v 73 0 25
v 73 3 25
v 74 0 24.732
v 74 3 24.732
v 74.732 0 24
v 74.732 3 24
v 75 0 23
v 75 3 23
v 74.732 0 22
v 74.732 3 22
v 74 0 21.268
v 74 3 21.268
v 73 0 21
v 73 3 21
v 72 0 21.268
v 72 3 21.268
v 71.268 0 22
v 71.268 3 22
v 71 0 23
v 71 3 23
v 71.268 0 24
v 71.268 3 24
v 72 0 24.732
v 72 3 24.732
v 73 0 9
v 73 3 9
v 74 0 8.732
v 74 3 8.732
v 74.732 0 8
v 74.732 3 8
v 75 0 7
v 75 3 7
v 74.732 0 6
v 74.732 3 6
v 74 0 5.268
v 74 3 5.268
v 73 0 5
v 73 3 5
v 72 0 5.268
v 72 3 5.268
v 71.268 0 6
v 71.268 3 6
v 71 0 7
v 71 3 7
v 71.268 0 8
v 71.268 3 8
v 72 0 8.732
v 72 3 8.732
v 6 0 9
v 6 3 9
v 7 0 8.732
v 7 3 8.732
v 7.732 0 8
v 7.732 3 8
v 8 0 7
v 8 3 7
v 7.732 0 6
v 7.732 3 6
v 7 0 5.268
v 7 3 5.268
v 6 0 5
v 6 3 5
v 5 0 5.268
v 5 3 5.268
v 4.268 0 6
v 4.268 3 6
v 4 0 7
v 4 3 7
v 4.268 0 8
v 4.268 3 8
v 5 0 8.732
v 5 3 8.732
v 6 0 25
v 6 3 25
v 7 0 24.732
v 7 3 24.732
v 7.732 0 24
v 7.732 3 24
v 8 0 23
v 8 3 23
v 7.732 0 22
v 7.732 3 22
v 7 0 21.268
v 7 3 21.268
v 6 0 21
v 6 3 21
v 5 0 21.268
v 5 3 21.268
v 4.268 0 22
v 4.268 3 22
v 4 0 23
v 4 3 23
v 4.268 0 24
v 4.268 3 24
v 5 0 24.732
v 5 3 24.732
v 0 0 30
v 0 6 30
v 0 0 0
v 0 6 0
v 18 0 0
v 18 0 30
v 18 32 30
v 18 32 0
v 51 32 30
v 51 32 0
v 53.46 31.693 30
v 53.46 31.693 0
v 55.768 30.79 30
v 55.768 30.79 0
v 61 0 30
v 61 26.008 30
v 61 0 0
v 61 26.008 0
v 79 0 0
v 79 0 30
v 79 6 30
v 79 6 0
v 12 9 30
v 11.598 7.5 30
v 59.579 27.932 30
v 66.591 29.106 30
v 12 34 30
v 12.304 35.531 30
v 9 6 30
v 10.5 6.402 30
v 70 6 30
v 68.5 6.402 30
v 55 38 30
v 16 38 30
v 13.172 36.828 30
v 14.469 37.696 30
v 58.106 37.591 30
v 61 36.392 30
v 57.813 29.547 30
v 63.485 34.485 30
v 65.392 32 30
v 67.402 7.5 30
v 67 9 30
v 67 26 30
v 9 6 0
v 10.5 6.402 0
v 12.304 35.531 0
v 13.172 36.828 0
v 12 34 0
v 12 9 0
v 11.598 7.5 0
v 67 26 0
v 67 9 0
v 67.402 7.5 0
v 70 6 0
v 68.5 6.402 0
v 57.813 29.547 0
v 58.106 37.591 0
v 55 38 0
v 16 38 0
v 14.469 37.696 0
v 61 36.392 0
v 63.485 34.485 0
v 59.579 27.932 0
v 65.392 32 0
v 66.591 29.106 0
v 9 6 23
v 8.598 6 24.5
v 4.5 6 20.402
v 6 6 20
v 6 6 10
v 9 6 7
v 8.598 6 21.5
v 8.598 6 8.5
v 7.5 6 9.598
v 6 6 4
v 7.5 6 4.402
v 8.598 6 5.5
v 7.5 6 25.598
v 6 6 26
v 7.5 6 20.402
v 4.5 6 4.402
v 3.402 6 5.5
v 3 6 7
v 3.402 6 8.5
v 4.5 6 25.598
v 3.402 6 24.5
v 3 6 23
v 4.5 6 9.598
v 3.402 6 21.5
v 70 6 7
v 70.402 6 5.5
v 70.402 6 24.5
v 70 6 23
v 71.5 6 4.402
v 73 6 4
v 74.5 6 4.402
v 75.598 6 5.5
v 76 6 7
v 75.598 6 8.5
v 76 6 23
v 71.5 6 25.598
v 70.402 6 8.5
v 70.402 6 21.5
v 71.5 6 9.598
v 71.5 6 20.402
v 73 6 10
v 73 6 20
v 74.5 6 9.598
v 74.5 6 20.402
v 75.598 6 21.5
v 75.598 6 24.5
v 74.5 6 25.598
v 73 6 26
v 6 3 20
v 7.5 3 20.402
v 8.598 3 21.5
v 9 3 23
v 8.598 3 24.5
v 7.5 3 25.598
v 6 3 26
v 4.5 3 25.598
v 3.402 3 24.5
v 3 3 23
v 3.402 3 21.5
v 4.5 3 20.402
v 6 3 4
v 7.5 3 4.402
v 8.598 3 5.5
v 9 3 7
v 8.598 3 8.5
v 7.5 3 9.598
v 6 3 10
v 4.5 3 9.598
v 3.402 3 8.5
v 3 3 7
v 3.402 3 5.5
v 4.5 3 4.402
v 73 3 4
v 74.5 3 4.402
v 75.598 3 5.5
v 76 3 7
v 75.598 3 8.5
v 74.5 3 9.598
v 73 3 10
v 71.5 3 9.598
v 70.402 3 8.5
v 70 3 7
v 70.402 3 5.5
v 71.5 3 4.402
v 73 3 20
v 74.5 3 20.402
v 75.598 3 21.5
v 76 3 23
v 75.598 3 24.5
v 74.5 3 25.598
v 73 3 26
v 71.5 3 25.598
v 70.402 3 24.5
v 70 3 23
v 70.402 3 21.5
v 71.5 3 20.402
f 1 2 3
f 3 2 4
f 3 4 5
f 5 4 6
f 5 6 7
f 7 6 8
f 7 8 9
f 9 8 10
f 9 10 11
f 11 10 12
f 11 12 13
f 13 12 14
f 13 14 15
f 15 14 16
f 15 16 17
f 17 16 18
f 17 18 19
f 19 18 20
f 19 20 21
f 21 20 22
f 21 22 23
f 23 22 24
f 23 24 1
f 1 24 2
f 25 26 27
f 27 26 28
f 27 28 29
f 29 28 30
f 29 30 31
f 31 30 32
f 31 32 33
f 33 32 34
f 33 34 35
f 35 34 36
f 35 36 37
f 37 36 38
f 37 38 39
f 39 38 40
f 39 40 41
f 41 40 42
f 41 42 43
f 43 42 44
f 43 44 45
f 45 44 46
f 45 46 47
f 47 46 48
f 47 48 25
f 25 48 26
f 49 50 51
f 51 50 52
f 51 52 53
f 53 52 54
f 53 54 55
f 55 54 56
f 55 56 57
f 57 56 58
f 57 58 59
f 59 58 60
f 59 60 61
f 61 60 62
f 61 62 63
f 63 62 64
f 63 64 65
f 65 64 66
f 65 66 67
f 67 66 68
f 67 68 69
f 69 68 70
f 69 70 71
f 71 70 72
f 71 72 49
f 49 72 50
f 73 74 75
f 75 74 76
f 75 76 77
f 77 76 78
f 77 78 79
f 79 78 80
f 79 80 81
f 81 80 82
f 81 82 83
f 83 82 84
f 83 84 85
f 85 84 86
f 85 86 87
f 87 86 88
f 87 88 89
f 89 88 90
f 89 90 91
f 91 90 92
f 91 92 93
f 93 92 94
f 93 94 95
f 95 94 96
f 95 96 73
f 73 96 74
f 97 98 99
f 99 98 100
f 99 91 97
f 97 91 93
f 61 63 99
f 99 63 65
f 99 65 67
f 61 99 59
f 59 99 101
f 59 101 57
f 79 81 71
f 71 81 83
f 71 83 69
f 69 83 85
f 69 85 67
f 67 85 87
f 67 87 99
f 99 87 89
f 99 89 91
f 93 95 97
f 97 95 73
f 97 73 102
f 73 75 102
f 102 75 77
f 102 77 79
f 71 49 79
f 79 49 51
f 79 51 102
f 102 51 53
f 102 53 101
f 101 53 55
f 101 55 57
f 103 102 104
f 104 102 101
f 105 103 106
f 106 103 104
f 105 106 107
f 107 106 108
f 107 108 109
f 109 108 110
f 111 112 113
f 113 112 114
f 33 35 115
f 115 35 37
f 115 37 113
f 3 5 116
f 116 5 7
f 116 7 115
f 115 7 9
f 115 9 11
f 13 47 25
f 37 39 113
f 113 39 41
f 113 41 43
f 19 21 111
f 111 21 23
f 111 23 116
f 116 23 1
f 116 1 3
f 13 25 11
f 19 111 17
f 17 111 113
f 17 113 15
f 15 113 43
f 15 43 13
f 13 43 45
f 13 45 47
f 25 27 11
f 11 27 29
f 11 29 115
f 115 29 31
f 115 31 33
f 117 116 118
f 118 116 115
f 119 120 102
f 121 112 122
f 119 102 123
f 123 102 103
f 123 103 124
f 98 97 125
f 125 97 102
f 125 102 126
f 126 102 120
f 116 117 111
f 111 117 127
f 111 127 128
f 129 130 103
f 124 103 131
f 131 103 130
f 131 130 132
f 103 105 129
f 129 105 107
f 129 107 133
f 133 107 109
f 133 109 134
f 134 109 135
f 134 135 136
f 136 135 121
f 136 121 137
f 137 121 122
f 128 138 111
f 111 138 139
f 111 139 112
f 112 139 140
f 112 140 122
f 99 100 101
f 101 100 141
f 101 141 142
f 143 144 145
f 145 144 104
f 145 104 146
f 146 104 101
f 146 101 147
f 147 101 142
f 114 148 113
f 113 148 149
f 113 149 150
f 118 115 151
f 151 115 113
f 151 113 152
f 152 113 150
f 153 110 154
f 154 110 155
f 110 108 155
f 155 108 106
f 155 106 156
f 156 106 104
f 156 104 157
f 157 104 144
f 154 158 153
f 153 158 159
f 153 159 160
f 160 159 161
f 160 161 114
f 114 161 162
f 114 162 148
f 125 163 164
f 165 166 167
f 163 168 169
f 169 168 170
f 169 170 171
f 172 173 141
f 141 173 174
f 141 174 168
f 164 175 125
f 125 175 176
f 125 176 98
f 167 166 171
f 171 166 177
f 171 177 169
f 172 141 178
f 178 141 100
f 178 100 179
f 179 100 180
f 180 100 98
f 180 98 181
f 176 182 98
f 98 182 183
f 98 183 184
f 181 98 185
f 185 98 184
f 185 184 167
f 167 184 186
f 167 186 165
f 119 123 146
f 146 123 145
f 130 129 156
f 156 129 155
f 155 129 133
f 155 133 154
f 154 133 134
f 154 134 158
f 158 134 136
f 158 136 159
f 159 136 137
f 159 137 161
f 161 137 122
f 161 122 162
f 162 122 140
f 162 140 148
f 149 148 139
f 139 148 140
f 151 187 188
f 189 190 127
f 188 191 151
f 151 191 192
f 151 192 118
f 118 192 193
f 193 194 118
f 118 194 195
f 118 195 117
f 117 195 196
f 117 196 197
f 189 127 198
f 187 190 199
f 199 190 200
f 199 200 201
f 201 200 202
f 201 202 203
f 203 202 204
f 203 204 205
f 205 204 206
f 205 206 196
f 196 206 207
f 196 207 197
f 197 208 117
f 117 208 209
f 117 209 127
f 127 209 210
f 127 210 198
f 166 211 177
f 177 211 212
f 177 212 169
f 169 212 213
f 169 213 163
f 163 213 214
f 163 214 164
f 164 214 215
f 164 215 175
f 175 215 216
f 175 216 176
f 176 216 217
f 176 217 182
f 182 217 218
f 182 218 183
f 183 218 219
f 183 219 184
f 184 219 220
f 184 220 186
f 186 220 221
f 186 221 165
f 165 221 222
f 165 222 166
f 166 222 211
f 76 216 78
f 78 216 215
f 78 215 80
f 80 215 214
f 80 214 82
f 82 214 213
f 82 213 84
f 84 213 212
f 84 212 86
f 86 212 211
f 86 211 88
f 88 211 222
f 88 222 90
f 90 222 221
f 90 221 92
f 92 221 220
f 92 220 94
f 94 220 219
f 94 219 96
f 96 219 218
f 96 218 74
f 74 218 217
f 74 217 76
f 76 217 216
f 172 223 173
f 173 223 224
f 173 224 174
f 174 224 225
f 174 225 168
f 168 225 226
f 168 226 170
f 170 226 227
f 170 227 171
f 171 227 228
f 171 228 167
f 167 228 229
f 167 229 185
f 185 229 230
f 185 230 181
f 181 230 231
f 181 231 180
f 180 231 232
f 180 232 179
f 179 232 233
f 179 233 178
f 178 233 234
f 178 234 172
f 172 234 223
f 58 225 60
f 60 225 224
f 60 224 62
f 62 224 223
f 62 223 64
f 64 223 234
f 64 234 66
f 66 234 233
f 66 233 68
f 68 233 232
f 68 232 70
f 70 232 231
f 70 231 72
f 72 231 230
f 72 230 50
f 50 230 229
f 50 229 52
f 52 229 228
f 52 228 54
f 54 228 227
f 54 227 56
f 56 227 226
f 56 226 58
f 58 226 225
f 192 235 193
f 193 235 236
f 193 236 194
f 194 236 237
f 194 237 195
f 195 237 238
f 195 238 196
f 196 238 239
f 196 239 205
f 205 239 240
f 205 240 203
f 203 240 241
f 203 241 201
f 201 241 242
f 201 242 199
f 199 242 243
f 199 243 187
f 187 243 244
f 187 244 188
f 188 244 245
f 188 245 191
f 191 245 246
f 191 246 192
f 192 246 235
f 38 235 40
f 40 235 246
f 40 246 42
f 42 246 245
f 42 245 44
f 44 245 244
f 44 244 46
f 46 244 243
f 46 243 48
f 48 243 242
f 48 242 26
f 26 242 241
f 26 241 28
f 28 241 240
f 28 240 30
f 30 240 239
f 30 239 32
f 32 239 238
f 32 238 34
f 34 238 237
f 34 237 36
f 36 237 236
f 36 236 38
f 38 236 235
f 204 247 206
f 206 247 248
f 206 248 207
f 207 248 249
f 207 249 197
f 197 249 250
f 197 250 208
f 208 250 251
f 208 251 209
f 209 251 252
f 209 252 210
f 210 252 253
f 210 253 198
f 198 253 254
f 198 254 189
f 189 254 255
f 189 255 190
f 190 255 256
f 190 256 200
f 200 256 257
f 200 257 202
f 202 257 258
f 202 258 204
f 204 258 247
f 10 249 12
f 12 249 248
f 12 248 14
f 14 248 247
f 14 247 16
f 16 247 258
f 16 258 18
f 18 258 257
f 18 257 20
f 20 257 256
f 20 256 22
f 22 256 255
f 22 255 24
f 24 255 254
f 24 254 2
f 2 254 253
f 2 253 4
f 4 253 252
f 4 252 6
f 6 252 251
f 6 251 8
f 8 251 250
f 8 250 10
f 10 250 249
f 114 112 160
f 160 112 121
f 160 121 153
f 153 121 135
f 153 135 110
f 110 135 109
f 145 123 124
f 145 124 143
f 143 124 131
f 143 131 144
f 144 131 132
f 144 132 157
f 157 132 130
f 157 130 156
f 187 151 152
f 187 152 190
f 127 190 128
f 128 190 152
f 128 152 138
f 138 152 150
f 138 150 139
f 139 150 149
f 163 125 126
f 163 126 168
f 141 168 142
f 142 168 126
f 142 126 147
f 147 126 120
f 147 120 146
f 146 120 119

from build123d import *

# Parameters (mm, degrees)
BOSS_EXTRUDE1_DEPTH     = 30
BOSS_EXTRUDE2_START     = -30
BOSS_EXTRUDE2_DEPTH     = 30
CUT_EXTRUDE1_DEPTH      = 93.655275079
CUT_EXTRUDE1_DEPTH_BACK = 93.655275079
SKETCH2_R               = 2
CUT_EXTRUDE3_START      = -1
SKETCH2_3_R             = 3
CUT_EXTRUDE3_DEPTH      = 10
CUT_EXTRUDE2_DEPTH      = 93.655275079
FILLET1_R               = 4
FILLET2_R               = 3


with BuildPart() as part:
    # Sketch1 → Boss-Extrude1 (new body)
    with BuildSketch(Plane.XY):
        with BuildLine():
            Line((0, 0), (18, 0))
            Line((18, 0), (18, 32))
            Line((18, 32), (51, 32))
            ThreePointArc((51, 32), (58.071067812, 29.071067812), (61, 22))
            Line((61, 22), (61, 0))
            Line((61, 0), (79, 0))
            Line((79, 0), (79, 4))
            Line((79, 4), (65, 4))
            Line((65, 4), (65, 26))
            ThreePointArc((65, 26), (62.071067812, 33.071067812), (55, 36))
            Line((55, 36), (14, 36))
            Line((14, 36), (14, 4))
            Line((14, 4), (0, 4))
            Line((0, 4), (0, 0))
        make_face()
    extrude(amount=BOSS_EXTRUDE1_DEPTH)

    # Sketch4 → Boss-Extrude2 (add)
    with BuildSketch(Plane.XY.offset(30).offset(BOSS_EXTRUDE2_START)):
        with BuildLine():
            Line((79, 6), (67, 6))
            Line((67, 6), (67, 26))
            ThreePointArc((67, 26), (63.485281374, 34.485281374), (55, 38))
            Line((55, 38), (12, 38))
            Line((12, 38), (12, 6))
            Line((12, 6), (0, 6))
            Line((0, 6), (0, 4))
            Line((0, 4), (14, 4))
            Line((14, 4), (14, 36))
            Line((14, 36), (55, 36))
            ThreePointArc((55, 36), (62.071067812, 33.071067812), (65, 26))
            Line((65, 26), (65, 4))
            Line((65, 4), (79, 4))
            Line((79, 4), (79, 6))
        make_face()
    extrude(amount=BOSS_EXTRUDE2_DEPTH)

    # Sketch2 (on Top Plane) → Cut-Extrude1 (cut, two sides: drawn at the far end of the back side and taken through both)
    with BuildSketch(Plane(origin=(0, 0, 0), x_dir=(1, 0, 0), z_dir=(0, 1, 0)).offset(-CUT_EXTRUDE1_DEPTH_BACK)):
        with Locations(Location((6, -7, 0), (0, 0, 270))):
            Circle(SKETCH2_R)
        with Locations(Location((6, -23, 0), (0, 0, 270))):
            Circle(SKETCH2_R)
        with Locations(Location((73, -7, 0), (0, 0, 270))):
            Circle(SKETCH2_R)
        with Locations(Location((73, -23, 0), (0, 0, 270))):
            Circle(SKETCH2_R)
    extrude(amount=CUT_EXTRUDE1_DEPTH + CUT_EXTRUDE1_DEPTH_BACK, mode=Mode.SUBTRACT)

    # Sketch2<3> → Cut-Extrude3 (cut)
    with BuildSketch(Plane(origin=(0, 4, 0), x_dir=(1, 0, 0), z_dir=(0, 1, 0)).offset(CUT_EXTRUDE3_START)):
        with Locations(Location((6, -7, 0), (0, 0, 270))):
            Circle(SKETCH2_3_R)
        with Locations(Location((6, -23, 0), (0, 0, 270))):
            Circle(SKETCH2_3_R)
        with Locations(Location((73, -7, 0), (0, 0, 270))):
            Circle(SKETCH2_3_R)
        with Locations(Location((73, -23, 0), (0, 0, 270))):
            Circle(SKETCH2_3_R)
    extrude(amount=CUT_EXTRUDE3_DEPTH, mode=Mode.SUBTRACT)

    # Sketch3 → Cut-Extrude2 (cut, through all)
    with BuildSketch(Plane.XY.offset(30)):
        with BuildLine():
            ThreePointArc((55.768474142, 30.789860884), (59.593158366, 27.114452981), (61, 22))
            Line((61, 22), (61, 26.007623502))
            ThreePointArc((61, 26.007623502), (58.735019606, 28.782480547), (55.768474142, 30.789860884))
        make_face()
    extrude(amount=-CUT_EXTRUDE2_DEPTH, mode=Mode.SUBTRACT)

    # Fillet1
    fillet1_edges = [part.edges().sort_by_distance(p)[0] for p in [
        (12, 38, 15),
    ]]
    fillet(fillet1_edges, radius=FILLET1_R)

    # Fillet2
    fillet2_edges = [part.edges().sort_by_distance(p)[0] for p in [
        (12, 6, 15),
        (67, 6, 15),
    ]]
    fillet(fillet2_edges, radius=FILLET2_R - 0.0001)  # a hair under: the kernel refuses the full size


solid = part.part
